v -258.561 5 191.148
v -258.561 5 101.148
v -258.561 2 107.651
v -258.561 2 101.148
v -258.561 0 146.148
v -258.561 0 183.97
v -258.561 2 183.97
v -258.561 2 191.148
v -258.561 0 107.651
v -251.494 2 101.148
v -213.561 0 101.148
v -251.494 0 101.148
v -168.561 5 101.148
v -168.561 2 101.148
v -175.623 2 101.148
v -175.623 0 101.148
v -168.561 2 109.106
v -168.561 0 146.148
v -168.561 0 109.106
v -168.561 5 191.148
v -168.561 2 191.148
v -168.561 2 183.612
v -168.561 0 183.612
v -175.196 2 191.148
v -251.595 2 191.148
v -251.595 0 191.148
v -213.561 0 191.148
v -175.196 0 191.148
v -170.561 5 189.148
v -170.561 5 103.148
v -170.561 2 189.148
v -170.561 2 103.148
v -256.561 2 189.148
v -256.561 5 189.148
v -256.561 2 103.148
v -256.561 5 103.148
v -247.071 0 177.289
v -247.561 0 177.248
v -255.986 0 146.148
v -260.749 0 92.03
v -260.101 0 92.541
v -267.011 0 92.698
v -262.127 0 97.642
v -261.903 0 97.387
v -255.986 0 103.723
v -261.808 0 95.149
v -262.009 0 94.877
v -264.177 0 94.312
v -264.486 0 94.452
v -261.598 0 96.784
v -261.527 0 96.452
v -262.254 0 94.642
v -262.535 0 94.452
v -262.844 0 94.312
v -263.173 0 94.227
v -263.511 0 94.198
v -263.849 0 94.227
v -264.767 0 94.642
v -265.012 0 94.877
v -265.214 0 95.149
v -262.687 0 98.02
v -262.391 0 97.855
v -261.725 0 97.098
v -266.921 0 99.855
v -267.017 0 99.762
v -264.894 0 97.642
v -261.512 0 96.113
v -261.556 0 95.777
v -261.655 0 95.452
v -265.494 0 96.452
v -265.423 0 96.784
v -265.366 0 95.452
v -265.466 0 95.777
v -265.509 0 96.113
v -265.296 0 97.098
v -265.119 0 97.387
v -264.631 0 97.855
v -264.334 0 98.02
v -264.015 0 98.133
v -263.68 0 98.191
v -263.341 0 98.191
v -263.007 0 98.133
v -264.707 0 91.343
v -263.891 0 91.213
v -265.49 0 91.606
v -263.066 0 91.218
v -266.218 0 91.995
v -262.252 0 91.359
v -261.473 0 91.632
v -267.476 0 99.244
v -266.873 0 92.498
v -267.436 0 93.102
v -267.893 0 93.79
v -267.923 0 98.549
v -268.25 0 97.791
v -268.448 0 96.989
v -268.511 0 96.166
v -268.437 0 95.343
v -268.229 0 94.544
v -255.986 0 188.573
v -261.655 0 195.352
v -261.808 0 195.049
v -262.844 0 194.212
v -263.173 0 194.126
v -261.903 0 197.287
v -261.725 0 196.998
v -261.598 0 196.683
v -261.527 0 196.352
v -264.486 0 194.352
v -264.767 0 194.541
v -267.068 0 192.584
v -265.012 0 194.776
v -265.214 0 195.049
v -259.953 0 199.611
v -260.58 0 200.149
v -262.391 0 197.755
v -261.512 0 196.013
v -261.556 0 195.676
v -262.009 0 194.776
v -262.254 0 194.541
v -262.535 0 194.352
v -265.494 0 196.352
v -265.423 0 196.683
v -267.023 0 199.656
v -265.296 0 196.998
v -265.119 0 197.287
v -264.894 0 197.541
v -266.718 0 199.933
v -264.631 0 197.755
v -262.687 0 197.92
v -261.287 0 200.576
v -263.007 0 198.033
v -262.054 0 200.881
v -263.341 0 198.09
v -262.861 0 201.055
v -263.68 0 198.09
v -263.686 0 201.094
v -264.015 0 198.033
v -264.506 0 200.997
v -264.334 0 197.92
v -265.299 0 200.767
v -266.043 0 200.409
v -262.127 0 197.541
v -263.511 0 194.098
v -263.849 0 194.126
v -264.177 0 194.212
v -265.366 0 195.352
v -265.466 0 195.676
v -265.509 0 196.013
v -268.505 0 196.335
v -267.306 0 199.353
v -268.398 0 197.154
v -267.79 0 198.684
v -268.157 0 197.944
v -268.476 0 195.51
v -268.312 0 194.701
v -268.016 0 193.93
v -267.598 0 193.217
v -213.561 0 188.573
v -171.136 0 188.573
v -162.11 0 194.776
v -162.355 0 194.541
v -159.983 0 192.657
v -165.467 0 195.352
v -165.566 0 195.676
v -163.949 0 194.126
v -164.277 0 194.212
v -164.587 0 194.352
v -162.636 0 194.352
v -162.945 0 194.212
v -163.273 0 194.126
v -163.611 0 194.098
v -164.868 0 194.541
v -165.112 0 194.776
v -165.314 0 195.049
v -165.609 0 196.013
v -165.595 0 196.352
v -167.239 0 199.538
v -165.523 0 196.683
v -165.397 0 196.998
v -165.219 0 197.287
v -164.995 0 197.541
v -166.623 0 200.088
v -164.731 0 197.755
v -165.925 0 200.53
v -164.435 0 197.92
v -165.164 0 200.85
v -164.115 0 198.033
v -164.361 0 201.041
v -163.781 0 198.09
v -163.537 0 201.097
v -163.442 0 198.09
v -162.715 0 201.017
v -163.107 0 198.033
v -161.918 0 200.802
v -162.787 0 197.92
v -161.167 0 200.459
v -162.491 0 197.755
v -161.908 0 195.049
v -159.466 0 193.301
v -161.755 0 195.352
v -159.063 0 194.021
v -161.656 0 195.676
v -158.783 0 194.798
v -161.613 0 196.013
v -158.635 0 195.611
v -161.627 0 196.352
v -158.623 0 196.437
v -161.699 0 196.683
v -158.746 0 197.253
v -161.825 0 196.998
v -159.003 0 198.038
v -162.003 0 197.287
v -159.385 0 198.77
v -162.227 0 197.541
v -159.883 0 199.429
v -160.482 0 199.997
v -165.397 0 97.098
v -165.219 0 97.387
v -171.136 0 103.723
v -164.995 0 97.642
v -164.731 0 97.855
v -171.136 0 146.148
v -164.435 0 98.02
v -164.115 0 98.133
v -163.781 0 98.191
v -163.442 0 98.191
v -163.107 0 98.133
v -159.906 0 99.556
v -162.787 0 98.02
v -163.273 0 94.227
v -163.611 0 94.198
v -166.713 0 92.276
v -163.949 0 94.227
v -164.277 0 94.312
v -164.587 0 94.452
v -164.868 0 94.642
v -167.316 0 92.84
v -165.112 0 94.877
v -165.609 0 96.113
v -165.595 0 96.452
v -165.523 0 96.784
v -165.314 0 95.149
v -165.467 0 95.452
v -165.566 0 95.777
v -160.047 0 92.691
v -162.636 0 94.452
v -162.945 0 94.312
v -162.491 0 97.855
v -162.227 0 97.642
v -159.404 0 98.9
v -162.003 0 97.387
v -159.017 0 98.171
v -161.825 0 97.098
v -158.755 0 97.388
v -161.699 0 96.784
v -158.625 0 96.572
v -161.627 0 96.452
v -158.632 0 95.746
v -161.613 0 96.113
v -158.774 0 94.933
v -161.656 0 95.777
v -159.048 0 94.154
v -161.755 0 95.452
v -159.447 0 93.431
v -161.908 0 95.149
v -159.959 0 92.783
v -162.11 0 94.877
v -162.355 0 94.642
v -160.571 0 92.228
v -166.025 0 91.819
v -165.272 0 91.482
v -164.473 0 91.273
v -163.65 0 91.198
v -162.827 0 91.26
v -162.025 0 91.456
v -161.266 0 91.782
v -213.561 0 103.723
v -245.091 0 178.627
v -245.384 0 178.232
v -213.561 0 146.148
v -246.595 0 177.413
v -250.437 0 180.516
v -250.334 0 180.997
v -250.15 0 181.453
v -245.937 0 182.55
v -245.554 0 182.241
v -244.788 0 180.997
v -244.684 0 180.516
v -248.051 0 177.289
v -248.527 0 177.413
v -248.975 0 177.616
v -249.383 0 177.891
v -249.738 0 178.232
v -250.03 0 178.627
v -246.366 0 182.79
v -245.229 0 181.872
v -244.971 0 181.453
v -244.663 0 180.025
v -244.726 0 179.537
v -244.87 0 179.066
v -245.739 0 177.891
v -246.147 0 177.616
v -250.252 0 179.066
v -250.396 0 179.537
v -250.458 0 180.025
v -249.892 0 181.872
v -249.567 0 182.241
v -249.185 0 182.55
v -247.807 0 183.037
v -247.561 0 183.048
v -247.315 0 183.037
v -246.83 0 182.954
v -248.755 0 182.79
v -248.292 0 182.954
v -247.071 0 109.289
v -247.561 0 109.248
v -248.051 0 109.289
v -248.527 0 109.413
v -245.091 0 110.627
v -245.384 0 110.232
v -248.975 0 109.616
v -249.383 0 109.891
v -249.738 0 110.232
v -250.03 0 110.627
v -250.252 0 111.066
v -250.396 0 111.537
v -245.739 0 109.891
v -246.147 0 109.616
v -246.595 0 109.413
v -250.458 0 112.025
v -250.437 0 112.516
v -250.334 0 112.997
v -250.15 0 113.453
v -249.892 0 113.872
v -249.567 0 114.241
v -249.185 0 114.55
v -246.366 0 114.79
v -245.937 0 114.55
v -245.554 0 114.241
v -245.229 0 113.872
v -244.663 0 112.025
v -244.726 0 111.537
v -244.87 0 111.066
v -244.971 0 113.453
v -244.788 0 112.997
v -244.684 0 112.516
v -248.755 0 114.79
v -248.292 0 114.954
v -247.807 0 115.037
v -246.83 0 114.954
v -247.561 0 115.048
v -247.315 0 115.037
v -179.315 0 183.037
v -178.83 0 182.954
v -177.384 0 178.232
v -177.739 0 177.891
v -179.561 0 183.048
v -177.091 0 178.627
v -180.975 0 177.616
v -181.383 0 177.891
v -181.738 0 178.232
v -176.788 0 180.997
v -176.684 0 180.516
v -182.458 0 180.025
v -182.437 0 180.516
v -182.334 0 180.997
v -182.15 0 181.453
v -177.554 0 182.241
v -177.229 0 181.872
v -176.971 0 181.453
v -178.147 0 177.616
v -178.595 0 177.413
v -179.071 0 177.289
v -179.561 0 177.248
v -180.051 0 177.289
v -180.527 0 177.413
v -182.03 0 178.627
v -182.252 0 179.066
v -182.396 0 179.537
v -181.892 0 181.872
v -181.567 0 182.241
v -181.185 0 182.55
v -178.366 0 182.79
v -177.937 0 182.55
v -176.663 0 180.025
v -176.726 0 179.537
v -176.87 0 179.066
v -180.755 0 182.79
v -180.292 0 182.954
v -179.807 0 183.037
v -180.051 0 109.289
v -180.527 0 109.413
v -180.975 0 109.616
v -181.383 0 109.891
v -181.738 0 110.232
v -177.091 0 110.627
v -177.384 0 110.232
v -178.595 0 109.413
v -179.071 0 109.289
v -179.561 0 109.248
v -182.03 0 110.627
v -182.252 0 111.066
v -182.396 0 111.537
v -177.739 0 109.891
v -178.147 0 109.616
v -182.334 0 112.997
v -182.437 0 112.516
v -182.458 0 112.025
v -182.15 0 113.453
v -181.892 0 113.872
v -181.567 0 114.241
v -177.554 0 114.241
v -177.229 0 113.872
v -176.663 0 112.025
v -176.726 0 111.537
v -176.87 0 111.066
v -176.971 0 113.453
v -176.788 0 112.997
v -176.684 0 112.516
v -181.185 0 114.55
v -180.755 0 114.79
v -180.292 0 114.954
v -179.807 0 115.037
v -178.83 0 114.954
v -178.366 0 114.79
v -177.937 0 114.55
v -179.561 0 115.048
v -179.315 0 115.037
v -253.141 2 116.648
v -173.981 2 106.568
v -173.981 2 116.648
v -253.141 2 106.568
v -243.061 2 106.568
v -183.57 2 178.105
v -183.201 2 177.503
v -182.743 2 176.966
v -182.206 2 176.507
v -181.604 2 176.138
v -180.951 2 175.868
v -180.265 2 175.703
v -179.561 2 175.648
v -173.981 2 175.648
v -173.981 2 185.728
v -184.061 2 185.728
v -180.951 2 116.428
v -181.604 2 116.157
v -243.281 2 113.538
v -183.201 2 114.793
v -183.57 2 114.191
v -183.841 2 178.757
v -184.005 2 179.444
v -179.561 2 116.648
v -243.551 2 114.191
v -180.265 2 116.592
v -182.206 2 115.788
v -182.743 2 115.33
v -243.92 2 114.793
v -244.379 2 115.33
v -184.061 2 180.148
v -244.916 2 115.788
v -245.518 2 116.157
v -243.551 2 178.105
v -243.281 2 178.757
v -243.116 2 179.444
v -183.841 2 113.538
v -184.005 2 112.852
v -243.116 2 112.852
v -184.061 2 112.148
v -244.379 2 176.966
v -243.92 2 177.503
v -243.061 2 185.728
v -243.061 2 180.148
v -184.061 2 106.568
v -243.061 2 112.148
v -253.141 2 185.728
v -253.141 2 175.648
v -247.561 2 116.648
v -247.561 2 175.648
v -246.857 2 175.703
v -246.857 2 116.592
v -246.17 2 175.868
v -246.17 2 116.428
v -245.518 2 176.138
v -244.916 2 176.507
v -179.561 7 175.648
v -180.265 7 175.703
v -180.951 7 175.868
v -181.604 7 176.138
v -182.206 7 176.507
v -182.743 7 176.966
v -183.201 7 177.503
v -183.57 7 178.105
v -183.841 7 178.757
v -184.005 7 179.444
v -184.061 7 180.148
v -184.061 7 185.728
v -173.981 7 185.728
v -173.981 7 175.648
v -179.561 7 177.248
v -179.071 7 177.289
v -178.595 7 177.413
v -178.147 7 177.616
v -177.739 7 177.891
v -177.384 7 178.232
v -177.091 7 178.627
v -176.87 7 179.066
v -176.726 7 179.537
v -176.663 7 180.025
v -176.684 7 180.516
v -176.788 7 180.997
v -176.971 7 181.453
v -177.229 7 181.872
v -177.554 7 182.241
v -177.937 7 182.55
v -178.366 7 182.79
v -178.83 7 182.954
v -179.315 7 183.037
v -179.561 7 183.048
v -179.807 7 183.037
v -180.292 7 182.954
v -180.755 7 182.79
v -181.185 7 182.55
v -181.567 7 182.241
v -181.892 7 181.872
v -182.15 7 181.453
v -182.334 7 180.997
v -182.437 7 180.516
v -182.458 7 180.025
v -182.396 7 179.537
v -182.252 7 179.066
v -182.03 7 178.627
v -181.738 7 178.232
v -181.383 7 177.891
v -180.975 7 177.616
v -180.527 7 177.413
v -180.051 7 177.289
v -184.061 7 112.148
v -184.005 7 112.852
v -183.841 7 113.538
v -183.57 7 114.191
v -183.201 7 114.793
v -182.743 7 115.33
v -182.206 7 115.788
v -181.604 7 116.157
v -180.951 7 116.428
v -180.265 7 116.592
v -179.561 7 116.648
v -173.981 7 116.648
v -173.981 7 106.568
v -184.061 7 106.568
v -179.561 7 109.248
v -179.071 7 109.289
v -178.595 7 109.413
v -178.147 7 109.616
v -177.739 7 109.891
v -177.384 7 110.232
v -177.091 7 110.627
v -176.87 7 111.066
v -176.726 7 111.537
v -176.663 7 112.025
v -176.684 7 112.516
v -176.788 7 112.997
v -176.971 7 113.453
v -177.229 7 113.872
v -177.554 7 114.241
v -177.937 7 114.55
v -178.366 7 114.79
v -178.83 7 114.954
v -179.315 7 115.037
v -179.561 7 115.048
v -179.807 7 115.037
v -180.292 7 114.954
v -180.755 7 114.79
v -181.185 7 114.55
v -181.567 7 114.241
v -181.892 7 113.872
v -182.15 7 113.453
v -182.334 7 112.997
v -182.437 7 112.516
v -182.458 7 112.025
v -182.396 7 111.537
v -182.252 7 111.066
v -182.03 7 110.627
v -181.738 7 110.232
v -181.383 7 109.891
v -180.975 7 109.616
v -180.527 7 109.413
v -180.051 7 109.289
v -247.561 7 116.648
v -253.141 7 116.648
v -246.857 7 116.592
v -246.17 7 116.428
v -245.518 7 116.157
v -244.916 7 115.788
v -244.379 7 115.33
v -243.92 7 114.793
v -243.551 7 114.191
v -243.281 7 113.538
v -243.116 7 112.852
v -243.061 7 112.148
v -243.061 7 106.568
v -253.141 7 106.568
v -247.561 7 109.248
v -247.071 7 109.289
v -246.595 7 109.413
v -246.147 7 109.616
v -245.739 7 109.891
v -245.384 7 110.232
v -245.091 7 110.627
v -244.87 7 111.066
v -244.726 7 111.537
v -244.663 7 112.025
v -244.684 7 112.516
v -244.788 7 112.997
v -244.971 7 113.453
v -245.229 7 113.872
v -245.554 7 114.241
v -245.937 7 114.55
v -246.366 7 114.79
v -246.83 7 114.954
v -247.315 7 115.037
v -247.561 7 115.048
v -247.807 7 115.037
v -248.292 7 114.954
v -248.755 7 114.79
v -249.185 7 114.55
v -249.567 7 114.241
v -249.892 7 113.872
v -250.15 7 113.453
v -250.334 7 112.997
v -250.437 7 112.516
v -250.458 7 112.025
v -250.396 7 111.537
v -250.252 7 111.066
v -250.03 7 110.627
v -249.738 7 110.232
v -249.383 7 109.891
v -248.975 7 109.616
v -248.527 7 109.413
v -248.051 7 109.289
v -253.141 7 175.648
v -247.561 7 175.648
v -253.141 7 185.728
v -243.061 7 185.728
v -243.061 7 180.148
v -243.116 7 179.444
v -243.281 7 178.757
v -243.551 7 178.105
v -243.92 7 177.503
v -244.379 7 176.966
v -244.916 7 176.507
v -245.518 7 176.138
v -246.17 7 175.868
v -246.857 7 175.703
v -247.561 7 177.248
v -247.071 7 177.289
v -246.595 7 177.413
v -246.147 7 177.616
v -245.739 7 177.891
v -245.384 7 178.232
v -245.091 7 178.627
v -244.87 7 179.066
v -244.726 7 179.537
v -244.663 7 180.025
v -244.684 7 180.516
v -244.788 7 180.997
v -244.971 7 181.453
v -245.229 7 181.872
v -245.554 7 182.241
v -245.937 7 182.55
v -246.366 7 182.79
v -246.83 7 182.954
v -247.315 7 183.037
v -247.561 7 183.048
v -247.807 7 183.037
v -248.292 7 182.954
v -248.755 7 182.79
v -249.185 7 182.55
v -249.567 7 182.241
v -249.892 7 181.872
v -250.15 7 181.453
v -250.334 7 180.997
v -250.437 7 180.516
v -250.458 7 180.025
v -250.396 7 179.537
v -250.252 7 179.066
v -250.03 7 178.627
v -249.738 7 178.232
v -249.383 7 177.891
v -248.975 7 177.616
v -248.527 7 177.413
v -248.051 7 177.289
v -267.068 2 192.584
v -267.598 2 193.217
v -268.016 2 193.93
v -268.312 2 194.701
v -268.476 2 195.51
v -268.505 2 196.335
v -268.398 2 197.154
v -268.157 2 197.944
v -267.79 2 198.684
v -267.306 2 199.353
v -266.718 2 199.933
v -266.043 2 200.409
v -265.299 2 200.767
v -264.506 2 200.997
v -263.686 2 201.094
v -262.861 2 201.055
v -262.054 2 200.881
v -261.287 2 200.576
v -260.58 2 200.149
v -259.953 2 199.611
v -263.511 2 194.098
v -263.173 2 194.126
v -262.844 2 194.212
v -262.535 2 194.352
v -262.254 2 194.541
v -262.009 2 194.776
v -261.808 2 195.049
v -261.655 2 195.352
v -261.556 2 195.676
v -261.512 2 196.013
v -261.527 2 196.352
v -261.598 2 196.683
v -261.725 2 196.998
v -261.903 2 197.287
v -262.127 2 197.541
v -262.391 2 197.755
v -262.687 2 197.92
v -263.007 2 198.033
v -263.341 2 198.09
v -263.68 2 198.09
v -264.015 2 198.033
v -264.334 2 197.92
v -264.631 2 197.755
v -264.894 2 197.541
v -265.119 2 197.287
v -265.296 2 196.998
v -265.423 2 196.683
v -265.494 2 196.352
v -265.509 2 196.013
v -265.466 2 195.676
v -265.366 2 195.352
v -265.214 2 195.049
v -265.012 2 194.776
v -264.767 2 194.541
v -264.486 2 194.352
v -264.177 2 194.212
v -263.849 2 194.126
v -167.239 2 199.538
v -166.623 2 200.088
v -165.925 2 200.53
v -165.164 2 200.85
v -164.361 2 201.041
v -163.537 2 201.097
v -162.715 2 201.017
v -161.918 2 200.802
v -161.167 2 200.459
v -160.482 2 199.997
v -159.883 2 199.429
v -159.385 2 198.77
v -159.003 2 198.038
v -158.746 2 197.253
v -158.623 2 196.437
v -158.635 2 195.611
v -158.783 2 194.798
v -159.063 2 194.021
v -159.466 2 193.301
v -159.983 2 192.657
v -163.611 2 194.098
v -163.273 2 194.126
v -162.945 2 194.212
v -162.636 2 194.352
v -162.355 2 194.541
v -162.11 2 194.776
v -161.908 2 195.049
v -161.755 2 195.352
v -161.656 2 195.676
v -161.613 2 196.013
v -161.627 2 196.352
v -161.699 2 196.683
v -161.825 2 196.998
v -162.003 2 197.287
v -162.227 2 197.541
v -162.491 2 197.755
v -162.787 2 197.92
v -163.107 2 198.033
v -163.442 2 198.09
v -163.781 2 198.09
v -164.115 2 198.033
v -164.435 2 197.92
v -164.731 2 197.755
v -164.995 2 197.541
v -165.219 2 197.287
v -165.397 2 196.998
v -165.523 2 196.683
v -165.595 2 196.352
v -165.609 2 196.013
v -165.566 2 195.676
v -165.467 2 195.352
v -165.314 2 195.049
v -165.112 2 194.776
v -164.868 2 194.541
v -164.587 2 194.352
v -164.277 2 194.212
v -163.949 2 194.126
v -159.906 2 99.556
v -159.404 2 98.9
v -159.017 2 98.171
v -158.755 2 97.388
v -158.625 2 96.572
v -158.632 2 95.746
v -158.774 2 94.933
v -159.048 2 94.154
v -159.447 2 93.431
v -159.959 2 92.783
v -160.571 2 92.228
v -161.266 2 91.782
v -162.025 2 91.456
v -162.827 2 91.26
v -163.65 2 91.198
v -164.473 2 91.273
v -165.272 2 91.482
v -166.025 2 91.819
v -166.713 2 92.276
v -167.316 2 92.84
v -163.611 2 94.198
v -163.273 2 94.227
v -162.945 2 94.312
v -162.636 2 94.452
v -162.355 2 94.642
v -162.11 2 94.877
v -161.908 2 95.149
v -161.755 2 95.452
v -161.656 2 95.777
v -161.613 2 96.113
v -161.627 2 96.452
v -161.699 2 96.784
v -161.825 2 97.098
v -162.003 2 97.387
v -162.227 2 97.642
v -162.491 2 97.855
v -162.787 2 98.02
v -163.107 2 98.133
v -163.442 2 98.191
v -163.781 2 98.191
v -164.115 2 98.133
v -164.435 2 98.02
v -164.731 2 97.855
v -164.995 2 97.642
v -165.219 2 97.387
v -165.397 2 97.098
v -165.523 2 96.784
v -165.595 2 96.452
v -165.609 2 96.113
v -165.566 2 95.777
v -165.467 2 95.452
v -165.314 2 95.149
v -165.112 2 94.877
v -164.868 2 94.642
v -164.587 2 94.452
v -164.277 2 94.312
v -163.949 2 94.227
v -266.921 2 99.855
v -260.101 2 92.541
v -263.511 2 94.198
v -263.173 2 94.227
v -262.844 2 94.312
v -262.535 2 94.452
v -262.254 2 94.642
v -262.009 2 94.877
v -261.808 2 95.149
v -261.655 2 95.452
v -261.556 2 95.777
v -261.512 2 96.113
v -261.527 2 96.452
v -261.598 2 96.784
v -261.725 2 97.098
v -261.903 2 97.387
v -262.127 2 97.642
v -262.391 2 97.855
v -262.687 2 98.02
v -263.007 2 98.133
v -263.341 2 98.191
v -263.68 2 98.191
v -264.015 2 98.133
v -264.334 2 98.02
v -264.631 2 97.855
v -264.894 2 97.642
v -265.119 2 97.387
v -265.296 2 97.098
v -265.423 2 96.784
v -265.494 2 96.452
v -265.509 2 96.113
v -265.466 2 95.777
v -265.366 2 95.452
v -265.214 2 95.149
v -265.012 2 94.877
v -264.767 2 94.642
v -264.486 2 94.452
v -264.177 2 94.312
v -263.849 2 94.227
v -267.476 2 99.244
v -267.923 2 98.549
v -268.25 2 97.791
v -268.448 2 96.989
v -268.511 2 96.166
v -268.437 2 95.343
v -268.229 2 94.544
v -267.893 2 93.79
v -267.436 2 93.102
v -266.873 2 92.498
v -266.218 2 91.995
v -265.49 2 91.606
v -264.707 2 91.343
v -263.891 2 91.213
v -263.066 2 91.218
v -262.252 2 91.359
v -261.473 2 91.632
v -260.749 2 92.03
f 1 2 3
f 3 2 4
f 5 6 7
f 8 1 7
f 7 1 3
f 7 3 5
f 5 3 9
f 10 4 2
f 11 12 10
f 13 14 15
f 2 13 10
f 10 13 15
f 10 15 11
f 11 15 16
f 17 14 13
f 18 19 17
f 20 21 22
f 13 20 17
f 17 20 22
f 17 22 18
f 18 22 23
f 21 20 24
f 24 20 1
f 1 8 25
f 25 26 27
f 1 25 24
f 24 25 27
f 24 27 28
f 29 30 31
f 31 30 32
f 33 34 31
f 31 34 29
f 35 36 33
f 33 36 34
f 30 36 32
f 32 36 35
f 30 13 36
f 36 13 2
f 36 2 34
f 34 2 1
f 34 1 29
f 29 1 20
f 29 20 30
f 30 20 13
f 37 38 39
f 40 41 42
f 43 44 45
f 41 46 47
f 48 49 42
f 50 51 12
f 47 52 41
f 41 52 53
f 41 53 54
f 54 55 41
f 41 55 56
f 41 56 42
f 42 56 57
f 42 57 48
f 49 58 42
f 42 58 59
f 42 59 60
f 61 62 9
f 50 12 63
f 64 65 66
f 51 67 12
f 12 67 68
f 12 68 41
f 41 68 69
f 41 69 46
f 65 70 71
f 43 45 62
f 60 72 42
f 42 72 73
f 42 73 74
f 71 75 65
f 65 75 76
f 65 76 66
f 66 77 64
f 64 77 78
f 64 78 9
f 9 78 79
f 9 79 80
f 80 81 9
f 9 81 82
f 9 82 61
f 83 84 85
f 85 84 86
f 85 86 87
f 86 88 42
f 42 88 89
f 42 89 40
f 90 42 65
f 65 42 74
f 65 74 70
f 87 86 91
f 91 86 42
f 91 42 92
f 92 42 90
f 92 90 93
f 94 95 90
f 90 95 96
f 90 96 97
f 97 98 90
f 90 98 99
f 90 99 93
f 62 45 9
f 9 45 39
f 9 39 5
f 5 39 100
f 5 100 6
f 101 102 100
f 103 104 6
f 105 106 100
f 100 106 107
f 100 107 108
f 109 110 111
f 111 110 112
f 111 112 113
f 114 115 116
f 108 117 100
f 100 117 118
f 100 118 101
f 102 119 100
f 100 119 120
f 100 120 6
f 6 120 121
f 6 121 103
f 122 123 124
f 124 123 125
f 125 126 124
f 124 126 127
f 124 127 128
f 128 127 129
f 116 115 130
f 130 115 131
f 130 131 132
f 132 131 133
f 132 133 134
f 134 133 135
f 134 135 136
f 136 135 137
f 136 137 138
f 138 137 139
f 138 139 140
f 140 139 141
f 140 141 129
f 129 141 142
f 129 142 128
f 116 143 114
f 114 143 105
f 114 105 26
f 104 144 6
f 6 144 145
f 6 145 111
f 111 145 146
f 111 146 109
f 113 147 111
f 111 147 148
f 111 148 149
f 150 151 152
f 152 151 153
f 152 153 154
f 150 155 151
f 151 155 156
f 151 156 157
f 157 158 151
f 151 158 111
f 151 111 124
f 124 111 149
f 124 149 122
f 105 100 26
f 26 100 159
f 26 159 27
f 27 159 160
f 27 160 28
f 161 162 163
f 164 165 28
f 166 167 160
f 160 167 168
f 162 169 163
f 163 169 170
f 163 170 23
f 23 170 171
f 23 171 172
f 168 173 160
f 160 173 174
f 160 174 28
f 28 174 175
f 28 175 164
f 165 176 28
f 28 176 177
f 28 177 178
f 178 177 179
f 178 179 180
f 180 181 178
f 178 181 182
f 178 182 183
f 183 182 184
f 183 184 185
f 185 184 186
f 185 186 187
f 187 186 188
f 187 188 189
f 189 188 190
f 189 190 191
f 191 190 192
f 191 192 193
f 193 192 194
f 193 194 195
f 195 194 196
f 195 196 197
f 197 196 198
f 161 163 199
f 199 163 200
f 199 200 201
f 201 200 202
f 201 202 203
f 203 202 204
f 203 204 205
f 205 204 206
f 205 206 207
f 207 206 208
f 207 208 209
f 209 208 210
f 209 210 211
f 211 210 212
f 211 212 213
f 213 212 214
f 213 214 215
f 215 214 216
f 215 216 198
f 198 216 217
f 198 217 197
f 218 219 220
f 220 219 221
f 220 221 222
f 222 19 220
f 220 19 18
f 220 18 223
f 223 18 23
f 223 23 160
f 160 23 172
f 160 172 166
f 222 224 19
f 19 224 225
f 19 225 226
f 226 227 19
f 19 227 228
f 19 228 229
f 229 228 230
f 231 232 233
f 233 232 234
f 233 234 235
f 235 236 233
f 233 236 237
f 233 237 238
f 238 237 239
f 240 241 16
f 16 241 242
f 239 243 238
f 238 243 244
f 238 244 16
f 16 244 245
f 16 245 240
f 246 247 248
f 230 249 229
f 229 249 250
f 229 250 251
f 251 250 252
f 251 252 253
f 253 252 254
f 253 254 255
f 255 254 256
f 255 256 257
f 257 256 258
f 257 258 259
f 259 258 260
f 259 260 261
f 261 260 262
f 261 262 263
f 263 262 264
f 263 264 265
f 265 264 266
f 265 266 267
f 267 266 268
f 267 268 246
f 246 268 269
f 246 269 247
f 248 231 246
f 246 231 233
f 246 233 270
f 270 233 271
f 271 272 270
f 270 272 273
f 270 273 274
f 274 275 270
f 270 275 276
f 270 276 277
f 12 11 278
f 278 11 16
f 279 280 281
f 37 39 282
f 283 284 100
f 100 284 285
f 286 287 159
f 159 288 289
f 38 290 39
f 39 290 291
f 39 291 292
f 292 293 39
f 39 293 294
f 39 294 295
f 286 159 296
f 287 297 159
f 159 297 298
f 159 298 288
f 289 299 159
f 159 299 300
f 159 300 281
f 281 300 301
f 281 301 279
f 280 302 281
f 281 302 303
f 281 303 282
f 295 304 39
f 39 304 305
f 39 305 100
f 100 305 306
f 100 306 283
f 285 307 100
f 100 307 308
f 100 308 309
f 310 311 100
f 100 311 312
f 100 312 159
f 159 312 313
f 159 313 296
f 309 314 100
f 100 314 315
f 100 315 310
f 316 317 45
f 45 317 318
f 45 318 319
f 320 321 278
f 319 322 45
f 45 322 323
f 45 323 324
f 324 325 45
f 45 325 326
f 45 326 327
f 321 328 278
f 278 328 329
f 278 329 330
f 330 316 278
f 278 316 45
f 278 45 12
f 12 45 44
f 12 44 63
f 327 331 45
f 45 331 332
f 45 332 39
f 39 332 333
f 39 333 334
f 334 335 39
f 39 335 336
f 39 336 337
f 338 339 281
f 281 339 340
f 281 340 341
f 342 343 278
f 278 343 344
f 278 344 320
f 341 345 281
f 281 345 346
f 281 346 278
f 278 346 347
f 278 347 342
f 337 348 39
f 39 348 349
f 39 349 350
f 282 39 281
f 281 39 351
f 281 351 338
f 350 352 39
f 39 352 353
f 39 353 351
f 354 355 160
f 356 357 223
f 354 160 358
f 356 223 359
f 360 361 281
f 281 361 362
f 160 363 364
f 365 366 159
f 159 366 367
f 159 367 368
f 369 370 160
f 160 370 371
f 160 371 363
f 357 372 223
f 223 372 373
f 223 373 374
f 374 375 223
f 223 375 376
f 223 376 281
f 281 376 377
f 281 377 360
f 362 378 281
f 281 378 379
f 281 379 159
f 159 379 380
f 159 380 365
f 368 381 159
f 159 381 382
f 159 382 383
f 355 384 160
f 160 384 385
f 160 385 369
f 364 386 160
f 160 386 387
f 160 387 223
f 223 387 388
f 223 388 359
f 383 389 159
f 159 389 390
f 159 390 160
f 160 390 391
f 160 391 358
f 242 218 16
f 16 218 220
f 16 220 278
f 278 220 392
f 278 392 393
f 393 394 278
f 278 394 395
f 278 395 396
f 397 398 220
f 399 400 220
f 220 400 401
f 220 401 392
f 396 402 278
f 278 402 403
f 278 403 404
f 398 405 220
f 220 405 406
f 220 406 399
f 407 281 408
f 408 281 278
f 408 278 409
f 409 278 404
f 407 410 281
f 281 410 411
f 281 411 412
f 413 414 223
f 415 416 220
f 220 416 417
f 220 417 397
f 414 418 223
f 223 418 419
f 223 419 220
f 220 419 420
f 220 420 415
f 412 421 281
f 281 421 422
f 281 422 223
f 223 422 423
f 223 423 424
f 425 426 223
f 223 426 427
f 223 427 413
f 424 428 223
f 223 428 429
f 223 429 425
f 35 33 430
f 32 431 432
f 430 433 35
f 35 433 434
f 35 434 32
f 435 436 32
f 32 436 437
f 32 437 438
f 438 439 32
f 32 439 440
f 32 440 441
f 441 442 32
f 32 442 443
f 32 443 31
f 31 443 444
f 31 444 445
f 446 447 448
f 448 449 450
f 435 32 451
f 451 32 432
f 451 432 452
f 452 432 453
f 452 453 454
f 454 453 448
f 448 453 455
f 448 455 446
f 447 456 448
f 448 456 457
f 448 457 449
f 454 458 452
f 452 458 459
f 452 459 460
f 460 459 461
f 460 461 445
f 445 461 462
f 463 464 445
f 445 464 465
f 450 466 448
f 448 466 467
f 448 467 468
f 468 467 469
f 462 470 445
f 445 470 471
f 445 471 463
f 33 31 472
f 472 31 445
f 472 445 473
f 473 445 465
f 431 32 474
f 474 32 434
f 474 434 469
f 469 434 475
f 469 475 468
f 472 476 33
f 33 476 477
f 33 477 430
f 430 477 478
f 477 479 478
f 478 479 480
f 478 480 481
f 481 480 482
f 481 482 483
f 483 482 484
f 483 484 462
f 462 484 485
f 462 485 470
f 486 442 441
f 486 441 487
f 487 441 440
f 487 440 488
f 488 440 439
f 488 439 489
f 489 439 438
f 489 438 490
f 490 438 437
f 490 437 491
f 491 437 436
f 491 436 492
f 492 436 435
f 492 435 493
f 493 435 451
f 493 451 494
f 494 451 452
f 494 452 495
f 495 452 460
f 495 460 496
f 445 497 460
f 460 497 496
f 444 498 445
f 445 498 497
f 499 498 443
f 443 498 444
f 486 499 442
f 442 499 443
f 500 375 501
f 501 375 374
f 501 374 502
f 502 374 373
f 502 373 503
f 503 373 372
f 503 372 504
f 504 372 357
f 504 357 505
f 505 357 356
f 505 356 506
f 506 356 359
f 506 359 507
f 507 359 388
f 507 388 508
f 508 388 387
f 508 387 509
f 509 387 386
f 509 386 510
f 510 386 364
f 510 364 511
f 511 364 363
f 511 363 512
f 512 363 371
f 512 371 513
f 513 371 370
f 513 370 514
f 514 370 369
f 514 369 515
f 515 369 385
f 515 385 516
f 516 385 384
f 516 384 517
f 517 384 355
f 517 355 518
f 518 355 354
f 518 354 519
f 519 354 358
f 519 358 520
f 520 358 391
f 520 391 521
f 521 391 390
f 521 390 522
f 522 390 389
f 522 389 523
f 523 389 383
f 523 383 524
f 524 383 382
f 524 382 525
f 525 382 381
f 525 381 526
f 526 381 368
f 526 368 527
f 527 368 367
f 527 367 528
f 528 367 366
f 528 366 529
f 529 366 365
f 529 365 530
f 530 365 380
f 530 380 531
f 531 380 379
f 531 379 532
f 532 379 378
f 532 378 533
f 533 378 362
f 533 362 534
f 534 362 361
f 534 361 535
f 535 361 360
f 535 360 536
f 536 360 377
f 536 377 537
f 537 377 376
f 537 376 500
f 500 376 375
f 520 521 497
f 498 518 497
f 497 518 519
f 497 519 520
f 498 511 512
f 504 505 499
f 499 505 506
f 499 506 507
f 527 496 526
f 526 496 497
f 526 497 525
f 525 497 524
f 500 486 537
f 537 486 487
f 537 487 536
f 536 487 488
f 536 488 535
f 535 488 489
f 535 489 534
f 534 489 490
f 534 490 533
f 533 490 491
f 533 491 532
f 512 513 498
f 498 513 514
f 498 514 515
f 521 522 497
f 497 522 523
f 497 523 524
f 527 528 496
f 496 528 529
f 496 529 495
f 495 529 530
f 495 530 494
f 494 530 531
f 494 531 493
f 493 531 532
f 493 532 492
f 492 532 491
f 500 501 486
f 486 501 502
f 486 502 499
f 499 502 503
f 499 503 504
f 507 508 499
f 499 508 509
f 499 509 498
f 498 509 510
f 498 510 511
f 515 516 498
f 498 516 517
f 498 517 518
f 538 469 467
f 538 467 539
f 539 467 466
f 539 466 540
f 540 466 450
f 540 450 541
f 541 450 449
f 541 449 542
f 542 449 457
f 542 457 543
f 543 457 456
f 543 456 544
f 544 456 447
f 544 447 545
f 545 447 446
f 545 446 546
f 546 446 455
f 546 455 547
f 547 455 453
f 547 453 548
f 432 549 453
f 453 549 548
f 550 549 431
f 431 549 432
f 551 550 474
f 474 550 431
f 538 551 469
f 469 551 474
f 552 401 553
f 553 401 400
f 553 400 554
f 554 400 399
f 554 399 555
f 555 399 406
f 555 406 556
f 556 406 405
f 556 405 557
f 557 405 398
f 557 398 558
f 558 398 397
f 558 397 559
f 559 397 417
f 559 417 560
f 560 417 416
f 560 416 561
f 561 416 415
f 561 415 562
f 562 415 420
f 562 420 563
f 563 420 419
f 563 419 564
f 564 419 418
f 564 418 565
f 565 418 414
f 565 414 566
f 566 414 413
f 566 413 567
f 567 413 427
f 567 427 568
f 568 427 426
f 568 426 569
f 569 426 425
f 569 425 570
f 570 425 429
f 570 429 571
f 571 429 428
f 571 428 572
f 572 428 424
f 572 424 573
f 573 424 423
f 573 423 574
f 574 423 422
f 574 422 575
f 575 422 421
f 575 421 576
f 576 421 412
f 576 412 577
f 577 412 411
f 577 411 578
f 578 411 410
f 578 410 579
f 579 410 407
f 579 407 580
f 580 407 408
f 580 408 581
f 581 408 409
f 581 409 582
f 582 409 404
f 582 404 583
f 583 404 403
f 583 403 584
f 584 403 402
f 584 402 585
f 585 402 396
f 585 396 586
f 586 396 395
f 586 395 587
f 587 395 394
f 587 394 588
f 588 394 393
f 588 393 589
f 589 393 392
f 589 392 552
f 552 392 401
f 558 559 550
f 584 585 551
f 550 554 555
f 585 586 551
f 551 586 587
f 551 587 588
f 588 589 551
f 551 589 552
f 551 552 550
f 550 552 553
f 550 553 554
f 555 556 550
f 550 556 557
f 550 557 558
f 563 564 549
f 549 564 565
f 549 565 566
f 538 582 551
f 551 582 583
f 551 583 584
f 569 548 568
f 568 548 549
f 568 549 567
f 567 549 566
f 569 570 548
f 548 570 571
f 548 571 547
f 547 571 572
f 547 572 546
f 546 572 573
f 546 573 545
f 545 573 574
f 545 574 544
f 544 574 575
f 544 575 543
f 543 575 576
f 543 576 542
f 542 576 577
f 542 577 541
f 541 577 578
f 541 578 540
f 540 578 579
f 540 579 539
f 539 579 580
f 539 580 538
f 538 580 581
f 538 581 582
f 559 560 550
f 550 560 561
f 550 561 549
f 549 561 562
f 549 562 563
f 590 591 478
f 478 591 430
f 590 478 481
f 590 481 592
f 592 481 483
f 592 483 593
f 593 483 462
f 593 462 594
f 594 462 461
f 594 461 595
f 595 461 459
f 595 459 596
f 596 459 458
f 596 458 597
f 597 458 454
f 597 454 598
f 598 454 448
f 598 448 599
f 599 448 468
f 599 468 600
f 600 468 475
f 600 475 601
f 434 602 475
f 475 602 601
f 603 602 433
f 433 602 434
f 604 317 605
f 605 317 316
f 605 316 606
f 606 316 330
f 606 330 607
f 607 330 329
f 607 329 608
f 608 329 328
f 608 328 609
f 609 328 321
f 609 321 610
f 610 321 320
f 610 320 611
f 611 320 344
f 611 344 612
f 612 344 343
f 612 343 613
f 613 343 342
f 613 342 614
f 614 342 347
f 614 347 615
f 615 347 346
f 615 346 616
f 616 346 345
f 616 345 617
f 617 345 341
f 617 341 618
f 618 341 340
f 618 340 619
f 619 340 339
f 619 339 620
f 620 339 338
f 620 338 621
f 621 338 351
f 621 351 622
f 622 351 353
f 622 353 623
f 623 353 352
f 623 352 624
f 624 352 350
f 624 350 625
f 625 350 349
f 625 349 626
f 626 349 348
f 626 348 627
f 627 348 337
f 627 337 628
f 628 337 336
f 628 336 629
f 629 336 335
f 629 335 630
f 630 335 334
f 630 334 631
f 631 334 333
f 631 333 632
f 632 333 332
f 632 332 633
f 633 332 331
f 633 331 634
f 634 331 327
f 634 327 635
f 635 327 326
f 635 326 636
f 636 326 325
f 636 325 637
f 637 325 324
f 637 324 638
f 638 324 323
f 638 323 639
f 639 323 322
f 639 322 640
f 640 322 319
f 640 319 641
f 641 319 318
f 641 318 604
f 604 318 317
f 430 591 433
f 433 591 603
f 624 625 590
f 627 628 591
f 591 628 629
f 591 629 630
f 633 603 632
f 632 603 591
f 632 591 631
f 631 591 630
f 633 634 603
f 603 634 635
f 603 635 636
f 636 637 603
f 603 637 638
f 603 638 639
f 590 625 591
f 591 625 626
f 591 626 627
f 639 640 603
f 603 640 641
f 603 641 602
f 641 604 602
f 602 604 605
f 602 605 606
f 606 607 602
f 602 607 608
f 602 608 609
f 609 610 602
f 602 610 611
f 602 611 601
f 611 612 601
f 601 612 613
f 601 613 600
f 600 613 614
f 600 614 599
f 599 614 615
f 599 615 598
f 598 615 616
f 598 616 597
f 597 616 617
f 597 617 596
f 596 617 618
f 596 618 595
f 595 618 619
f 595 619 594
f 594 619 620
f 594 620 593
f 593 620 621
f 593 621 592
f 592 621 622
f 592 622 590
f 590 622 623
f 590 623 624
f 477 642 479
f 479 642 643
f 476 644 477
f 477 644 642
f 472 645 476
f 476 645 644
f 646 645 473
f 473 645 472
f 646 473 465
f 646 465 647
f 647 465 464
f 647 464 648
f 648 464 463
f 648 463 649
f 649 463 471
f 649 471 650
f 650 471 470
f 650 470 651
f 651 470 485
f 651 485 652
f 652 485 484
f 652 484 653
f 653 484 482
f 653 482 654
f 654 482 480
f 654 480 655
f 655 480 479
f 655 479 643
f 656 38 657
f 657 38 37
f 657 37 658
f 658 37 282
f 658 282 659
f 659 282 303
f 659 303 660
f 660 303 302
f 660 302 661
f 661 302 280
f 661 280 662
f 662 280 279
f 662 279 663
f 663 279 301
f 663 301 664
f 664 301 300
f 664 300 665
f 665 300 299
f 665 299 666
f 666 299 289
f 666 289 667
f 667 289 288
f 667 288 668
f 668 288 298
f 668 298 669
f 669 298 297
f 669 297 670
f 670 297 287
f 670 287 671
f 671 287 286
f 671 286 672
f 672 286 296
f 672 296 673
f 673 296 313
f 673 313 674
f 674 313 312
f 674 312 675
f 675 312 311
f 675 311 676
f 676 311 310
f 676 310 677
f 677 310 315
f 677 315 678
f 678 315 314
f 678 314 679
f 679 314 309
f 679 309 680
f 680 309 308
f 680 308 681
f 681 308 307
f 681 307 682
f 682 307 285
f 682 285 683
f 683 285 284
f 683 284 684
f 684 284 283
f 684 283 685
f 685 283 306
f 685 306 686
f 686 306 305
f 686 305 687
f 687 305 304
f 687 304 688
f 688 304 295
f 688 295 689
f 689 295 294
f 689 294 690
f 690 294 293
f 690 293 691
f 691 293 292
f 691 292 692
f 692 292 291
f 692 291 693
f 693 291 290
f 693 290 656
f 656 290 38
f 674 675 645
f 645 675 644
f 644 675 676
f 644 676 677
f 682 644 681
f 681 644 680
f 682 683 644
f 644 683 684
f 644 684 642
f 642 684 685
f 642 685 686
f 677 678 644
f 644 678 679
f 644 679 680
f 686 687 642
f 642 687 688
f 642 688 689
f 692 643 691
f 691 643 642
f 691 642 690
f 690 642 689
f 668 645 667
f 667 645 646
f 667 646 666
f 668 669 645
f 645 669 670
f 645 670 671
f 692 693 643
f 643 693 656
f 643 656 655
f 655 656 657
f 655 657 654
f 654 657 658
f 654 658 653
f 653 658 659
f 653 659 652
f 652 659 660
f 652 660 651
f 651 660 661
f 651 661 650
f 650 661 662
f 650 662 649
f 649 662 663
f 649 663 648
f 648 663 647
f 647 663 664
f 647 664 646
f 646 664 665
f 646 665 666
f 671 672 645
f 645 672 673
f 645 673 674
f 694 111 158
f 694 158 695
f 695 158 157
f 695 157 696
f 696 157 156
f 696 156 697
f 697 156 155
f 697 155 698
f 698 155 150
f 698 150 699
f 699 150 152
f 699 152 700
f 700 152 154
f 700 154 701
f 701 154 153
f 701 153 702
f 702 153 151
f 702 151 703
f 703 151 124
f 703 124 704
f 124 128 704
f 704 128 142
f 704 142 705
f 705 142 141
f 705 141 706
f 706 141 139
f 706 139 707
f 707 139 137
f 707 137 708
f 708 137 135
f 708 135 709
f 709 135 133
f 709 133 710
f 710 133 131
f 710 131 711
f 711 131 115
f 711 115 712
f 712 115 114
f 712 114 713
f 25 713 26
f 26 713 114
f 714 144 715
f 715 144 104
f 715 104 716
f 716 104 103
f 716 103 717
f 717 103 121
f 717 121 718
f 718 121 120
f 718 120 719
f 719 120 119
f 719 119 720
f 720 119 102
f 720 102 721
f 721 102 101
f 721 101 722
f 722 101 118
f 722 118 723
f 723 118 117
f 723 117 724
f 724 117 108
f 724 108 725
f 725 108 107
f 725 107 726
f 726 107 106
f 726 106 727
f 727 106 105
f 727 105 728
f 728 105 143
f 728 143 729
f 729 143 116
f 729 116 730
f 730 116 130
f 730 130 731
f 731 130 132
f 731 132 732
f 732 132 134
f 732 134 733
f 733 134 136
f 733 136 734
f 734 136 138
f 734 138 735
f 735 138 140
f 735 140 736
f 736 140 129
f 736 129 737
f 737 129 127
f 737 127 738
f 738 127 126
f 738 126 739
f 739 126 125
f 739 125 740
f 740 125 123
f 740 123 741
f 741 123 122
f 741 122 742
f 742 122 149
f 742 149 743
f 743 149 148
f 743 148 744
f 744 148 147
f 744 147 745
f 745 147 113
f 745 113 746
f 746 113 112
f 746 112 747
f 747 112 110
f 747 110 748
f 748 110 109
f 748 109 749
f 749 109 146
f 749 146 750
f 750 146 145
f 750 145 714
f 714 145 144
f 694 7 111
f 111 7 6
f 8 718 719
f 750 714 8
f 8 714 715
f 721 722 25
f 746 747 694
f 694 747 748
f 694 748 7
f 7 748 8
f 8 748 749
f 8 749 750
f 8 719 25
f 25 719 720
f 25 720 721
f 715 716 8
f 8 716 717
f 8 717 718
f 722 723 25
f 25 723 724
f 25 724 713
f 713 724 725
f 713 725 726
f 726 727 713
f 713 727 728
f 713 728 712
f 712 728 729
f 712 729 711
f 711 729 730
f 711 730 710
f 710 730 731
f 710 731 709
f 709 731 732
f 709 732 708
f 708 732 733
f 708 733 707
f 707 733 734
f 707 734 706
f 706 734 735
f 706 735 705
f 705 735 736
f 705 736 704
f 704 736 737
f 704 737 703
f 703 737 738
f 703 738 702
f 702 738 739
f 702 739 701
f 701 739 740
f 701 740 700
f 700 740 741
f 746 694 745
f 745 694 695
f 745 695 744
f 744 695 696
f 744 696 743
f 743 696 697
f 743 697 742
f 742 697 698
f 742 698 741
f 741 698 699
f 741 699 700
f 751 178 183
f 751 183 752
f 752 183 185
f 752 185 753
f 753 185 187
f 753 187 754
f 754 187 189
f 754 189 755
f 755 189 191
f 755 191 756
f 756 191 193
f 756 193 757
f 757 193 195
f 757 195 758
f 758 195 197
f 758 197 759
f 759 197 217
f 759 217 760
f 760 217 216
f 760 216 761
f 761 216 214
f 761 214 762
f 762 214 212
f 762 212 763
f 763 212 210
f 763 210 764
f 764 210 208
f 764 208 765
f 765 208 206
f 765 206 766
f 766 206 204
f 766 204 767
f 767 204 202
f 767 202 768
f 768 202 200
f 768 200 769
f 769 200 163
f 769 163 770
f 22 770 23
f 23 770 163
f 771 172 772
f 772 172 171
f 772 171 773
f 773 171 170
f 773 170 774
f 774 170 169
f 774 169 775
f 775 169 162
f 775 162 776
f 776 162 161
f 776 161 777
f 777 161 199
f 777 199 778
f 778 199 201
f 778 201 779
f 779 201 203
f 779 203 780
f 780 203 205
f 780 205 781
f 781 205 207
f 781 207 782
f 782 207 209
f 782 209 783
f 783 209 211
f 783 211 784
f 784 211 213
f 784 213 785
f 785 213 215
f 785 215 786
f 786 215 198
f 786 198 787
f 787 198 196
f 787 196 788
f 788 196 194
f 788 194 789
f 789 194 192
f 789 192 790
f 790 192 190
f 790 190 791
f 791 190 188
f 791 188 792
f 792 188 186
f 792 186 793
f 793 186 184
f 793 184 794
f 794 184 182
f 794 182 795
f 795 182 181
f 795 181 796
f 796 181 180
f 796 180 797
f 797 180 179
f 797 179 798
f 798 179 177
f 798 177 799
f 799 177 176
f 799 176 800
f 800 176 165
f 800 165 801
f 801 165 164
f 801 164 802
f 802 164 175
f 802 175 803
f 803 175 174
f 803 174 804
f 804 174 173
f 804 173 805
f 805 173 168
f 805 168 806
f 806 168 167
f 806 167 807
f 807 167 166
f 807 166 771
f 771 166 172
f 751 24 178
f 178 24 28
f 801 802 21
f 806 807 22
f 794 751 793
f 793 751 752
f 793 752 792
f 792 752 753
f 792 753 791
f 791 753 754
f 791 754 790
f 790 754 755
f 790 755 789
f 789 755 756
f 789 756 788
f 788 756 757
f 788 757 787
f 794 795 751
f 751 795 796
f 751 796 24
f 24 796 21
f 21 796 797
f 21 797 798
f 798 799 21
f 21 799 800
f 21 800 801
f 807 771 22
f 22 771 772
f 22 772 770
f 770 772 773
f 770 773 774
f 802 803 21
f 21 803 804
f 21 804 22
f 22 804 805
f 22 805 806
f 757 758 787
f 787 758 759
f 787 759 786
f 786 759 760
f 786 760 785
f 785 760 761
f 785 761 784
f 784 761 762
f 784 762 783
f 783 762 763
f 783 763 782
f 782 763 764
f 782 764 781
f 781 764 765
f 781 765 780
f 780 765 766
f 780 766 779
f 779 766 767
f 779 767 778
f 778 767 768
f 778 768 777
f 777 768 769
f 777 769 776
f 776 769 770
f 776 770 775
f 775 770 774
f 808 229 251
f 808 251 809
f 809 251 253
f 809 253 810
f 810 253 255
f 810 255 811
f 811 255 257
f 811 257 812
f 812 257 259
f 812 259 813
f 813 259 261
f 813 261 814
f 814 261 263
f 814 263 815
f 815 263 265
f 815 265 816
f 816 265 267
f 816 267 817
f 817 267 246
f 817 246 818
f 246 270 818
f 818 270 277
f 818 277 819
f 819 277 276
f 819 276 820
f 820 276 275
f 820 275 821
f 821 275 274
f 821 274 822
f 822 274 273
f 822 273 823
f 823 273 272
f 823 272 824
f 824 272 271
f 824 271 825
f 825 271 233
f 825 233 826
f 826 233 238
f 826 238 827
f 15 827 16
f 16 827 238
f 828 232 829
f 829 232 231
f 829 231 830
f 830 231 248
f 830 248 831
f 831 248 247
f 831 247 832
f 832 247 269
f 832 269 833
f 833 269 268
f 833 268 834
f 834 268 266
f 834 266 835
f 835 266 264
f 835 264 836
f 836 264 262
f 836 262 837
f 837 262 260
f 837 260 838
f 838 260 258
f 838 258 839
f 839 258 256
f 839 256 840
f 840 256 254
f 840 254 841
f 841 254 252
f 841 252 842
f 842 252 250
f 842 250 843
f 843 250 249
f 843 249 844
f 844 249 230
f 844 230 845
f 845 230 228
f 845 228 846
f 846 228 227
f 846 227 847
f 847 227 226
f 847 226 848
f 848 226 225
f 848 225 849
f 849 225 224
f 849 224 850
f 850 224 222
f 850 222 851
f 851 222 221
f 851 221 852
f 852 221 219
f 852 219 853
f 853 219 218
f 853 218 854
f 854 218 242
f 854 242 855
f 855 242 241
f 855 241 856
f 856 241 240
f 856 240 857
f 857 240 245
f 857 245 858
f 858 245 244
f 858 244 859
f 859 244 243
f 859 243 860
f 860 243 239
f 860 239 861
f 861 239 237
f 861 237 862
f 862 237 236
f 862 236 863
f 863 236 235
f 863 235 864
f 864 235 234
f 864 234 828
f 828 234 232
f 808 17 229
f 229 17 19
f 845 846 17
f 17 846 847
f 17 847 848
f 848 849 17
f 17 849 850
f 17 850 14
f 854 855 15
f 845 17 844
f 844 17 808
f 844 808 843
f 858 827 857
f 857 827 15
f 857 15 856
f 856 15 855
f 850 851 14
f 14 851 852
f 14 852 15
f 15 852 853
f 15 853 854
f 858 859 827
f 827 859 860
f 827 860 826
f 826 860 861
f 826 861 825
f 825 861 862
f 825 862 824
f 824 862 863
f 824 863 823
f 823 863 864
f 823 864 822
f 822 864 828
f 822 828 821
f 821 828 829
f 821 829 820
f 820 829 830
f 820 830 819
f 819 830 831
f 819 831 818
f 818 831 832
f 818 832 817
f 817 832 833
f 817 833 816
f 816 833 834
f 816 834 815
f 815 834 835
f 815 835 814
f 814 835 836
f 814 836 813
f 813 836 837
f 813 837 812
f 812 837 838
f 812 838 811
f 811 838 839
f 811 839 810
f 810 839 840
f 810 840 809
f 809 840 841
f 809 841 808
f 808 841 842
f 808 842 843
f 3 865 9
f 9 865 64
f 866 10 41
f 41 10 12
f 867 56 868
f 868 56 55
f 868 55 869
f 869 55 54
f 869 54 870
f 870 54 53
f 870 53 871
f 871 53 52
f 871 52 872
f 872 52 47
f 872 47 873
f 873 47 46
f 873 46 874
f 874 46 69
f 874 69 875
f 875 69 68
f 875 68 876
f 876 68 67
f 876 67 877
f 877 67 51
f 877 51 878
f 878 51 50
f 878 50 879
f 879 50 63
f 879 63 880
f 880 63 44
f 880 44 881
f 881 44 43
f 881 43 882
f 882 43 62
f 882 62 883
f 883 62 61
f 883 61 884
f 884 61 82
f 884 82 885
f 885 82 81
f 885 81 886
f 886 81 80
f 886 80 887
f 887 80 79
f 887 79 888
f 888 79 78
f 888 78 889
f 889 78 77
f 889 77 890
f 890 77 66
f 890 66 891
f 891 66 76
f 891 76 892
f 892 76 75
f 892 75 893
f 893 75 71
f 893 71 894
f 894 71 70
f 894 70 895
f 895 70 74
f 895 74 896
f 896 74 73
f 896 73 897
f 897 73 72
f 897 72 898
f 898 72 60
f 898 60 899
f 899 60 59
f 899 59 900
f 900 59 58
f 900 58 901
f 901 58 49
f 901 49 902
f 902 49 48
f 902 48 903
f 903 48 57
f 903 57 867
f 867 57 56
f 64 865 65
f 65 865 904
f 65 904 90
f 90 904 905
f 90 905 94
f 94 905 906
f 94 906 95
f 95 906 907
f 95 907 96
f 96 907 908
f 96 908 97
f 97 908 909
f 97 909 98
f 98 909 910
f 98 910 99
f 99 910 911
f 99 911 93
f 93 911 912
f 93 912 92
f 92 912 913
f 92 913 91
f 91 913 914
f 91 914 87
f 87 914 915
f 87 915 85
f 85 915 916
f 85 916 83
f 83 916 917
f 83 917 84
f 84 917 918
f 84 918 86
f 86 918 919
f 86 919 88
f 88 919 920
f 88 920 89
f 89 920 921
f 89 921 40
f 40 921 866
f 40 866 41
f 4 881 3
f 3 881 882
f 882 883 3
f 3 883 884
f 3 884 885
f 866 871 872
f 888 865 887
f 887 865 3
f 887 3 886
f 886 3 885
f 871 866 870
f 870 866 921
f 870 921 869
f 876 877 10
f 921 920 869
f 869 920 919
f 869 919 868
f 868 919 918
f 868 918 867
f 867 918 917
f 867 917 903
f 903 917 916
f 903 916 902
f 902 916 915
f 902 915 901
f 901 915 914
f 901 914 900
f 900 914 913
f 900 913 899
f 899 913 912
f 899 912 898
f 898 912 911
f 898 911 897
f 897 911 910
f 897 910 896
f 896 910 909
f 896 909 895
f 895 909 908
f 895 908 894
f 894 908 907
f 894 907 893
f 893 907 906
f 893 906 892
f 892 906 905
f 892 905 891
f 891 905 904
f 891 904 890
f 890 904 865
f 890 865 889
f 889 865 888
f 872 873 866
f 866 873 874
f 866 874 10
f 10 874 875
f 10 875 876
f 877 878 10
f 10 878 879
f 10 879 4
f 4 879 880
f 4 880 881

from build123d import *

# Parameters (mm, degrees)
BOSS_EXTRUDE1_DEPTH  = 5
BOSS_EXTRUDE2_DEPTH  = 2
SKETCH1_9_R          = 2.9
BOSS_EXTRUDE11_DEPTH = 7
BOSS_EXTRUDE12_DEPTH = 2
SKETCH2_R            = 2
BOSS_EXTRUDE13_DEPTH = 2


with BuildPart() as part:
    # Sketch1 → Boss-Extrude1 (new body)
    with BuildSketch(Plane(origin=(0, 0, 0), x_dir=(1, 0, 0), z_dir=(0, 1, 0))):
        Polygon((-170.560874466, -191.147776914), (-168.560874466, -191.147776914), (-168.560874466, -101.147776914), (-258.560874466, -101.147776914), (-258.560874466, -191.147776914), align=None)
        Polygon((-170.560874466, -103.147776914), (-170.560874466, -189.147776914), (-173.980874466, -189.147776914), (-256.560874466, -189.147776914), (-256.560874466, -103.147776914), align=None, mode=Mode.SUBTRACT)
    extrude(amount=BOSS_EXTRUDE1_DEPTH)

    # Sketch1<3> → Boss-Extrude2 (add)
    with BuildSketch(Plane(origin=(0, 0, 0), x_dir=(1, 0, 0), z_dir=(0, 1, 0))):
        Polygon((-173.980874466, -189.147776914), (-170.560874466, -189.147776914), (-170.560874466, -103.147776914), (-256.560874466, -103.147776914), (-256.560874466, -189.147776914), align=None)
        Polygon((-173.980874466, -175.647776914), (-173.980874466, -185.727776914), (-176.060874466, -185.727776914), (-184.060874466, -185.727776914), (-243.060874466, -185.727776914), (-253.140874466, -185.727776914), (-253.140874466, -175.647776914), (-253.140874466, -116.647776914), (-253.140874466, -106.567776914), (-243.060874466, -106.567776914), (-184.060874466, -106.567776914), (-173.980874466, -106.567776914), (-173.980874466, -116.647776914), align=None, mode=Mode.SUBTRACT)
    extrude(amount=BOSS_EXTRUDE2_DEPTH)

    # Sketch1<9> → Boss-Extrude11 (add)
    # profile 1 of 4: a face of its own
    with BuildSketch(Plane(origin=(0, 0, 0), x_dir=(1, 0, 0), z_dir=(0, 1, 0))):
        with BuildLine():
            Line((-173.980874466, -185.727776914), (-173.980874466, -175.647776914))
            Line((-173.980874466, -175.647776914), (-179.560874466, -175.647776914))
            ThreePointArc((-179.560874466, -175.647776914), (-182.742854981, -176.965796398), (-184.060874466, -180.147776914))
            Line((-184.060874466, -180.147776914), (-184.060874466, -185.727776914))
            Line((-184.060874466, -185.727776914), (-173.980874466, -185.727776914))
        make_face()
        with Locations((-179.560874466, -180.147776914)):
            Circle(SKETCH1_9_R, mode=Mode.SUBTRACT)
    # profile 2 of 4: a face of its own
    with BuildSketch(Plane(origin=(0, 0, 0), x_dir=(1, 0, 0), z_dir=(0, 1, 0))):
        with BuildLine():
            Line((-173.980874466, -116.647776914), (-173.980874466, -106.567776914))
            Line((-173.980874466, -106.567776914), (-184.060874466, -106.567776914))
            Line((-184.060874466, -106.567776914), (-184.060874466, -112.147776914))
            ThreePointArc((-184.060874466, -112.147776914), (-182.742854981, -115.329757429), (-179.560874466, -116.647776914))
            Line((-179.560874466, -116.647776914), (-173.980874466, -116.647776914))
        make_face()
        with Locations((-179.560874466, -112.147776914)):
            Circle(SKETCH1_9_R, mode=Mode.SUBTRACT)
    # profile 3 of 4: a face of its own
    with BuildSketch(Plane(origin=(0, 0, 0), x_dir=(1, 0, 0), z_dir=(0, 1, 0))):
        with BuildLine():
            Line((-253.140874466, -185.727776914), (-243.060874466, -185.727776914))
            Line((-243.060874466, -185.727776914), (-243.060874466, -180.147776914))
            ThreePointArc((-243.060874466, -180.147776914), (-244.378893951, -176.965796398), (-247.560874466, -175.647776914))
            Line((-247.560874466, -175.647776914), (-253.140874466, -175.647776914))
            Line((-253.140874466, -175.647776914), (-253.140874466, -185.727776914))
        make_face()
        with Locations((-247.560874466, -180.147776914)):
            Circle(SKETCH1_9_R, mode=Mode.SUBTRACT)
    # profile 4 of 4: a face of its own
    with BuildSketch(Plane(origin=(0, 0, 0), x_dir=(1, 0, 0), z_dir=(0, 1, 0))):
        with BuildLine():
            Line((-243.060874466, -106.567776914), (-253.140874466, -106.567776914))
            Line((-253.140874466, -106.567776914), (-253.140874466, -116.647776914))
            Line((-253.140874466, -116.647776914), (-247.560874466, -116.647776914))
            ThreePointArc((-247.560874466, -116.647776914), (-244.378893951, -115.329757429), (-243.060874466, -112.147776914))
            Line((-243.060874466, -112.147776914), (-243.060874466, -106.567776914))
        make_face()
        with Locations((-247.560874466, -112.147776914)):
            Circle(SKETCH1_9_R, mode=Mode.SUBTRACT)
    extrude(amount=BOSS_EXTRUDE11_DEPTH)

    # Sketch1<10> → Boss-Extrude12 (add)
    with BuildSketch(Plane(origin=(0, 0, 0), x_dir=(1, 0, 0), z_dir=(0, 1, 0))):
        with BuildLine():
            Line((-173.980874466, -175.647776914), (-173.980874466, -116.647776914))
            Line((-173.980874466, -116.647776914), (-179.560874466, -116.647776914))
            ThreePointArc((-179.560874466, -116.647776914), (-182.742854981, -115.329757429), (-184.060874466, -112.147776914))
            Line((-184.060874466, -112.147776914), (-184.060874466, -106.567776914))
            Line((-184.060874466, -106.567776914), (-243.060874466, -106.567776914))
            Line((-243.060874466, -106.567776914), (-243.060874466, -112.147776914))
            ThreePointArc((-243.060874466, -112.147776914), (-244.378893951, -115.329757429), (-247.560874466, -116.647776914))
            Line((-247.560874466, -116.647776914), (-253.140874466, -116.647776914))
            Line((-253.140874466, -116.647776914), (-253.140874466, -175.647776914))
            Line((-253.140874466, -175.647776914), (-247.560874466, -175.647776914))
            ThreePointArc((-247.560874466, -175.647776914), (-244.378893951, -176.965796398), (-243.060874466, -180.147776914))
            Line((-243.060874466, -180.147776914), (-243.060874466, -185.727776914))
            Line((-243.060874466, -185.727776914), (-184.060874466, -185.727776914))
            Line((-184.060874466, -185.727776914), (-184.060874466, -180.147776914))
            ThreePointArc((-184.060874466, -180.147776914), (-182.742854981, -176.965796398), (-179.560874466, -175.647776914))
            Line((-179.560874466, -175.647776914), (-173.980874466, -175.647776914))
        make_face()
    extrude(amount=BOSS_EXTRUDE12_DEPTH)

    # Sketch2 → Boss-Extrude13 (add)
    # profile 1 of 4: a face of its own
    with BuildSketch(Plane.XZ):
        with BuildLine():
            Line((-168.560874466, 109.105835649), (-168.560874466, 101.147776914))
            Line((-168.560874466, 101.147776914), (-175.623402457, 101.147776914))
            Line((-175.623402457, 101.147776914), (-167.316099349, 92.840473806))
            ThreePointArc((-167.316099349, 92.840473806), (-160.253571358, 92.493057094), (-159.906154646, 99.555585085))
            Line((-159.906154646, 99.555585085), (-168.560874466, 109.105835649))
        make_face()
        with Locations((-163.611126998, 96.198029445)):
            Circle(SKETCH2_R, mode=Mode.SUBTRACT)
    # profile 2 of 4: a face of its own
    with BuildSketch(Plane.XZ):
        with BuildLine():
            Line((-260.100590579, 92.541297823), (-251.494111489, 101.147776914))
            Line((-251.494111489, 101.147776914), (-258.560874466, 101.147776914))
            Line((-258.560874466, 101.147776914), (-258.560874466, 107.650550002))
            Line((-258.560874466, 107.650550002), (-266.92065329, 99.854761067))
            ThreePointArc((-266.92065329, 99.854761067), (-267.167353556, 92.78799809), (-260.100590579, 92.541297823))
        make_face()
        with Locations((-263.510621934, 96.198029445)):
            Circle(SKETCH2_R, mode=Mode.SUBTRACT)
    # profile 3 of 4: a face of its own
    with BuildSketch(Plane.XZ):
        with BuildLine():
            Line((-168.560874466, 191.147776914), (-168.560874466, 183.611676585))
            Line((-168.560874466, 183.611676585), (-159.983076201, 192.656994276))
            ThreePointArc((-159.983076201, 192.656994276), (-160.170596891, 199.725575179), (-167.239177795, 199.538054488))
            Line((-167.239177795, 199.538054488), (-175.195792575, 191.147776914))
            Line((-175.195792575, 191.147776914), (-168.560874466, 191.147776914))
        make_face()
        with Locations((-163.611126998, 196.097524382)):
            Circle(SKETCH2_R, mode=Mode.SUBTRACT)
    # profile 4 of 4: a face of its own
    with BuildSketch(Plane.XZ):
        with BuildLine():
            Line((-267.068077111, 192.584048515), (-258.560874466, 183.970358473))
            Line((-258.560874466, 183.970358473), (-258.560874466, 191.147776914))
            Line((-258.560874466, 191.147776914), (-251.594570664, 191.147776914))
            Line((-251.594570664, 191.147776914), (-259.953166758, 199.611000249))
            ThreePointArc((-259.953166758, 199.611000249), (-267.024097801, 199.654979559), (-267.068077111, 192.584048515))
        make_face()
        with Locations((-263.510621934, 196.097524382)):
            Circle(SKETCH2_R, mode=Mode.SUBTRACT)
    extrude(amount=-BOSS_EXTRUDE13_DEPTH)


solid = part.part
